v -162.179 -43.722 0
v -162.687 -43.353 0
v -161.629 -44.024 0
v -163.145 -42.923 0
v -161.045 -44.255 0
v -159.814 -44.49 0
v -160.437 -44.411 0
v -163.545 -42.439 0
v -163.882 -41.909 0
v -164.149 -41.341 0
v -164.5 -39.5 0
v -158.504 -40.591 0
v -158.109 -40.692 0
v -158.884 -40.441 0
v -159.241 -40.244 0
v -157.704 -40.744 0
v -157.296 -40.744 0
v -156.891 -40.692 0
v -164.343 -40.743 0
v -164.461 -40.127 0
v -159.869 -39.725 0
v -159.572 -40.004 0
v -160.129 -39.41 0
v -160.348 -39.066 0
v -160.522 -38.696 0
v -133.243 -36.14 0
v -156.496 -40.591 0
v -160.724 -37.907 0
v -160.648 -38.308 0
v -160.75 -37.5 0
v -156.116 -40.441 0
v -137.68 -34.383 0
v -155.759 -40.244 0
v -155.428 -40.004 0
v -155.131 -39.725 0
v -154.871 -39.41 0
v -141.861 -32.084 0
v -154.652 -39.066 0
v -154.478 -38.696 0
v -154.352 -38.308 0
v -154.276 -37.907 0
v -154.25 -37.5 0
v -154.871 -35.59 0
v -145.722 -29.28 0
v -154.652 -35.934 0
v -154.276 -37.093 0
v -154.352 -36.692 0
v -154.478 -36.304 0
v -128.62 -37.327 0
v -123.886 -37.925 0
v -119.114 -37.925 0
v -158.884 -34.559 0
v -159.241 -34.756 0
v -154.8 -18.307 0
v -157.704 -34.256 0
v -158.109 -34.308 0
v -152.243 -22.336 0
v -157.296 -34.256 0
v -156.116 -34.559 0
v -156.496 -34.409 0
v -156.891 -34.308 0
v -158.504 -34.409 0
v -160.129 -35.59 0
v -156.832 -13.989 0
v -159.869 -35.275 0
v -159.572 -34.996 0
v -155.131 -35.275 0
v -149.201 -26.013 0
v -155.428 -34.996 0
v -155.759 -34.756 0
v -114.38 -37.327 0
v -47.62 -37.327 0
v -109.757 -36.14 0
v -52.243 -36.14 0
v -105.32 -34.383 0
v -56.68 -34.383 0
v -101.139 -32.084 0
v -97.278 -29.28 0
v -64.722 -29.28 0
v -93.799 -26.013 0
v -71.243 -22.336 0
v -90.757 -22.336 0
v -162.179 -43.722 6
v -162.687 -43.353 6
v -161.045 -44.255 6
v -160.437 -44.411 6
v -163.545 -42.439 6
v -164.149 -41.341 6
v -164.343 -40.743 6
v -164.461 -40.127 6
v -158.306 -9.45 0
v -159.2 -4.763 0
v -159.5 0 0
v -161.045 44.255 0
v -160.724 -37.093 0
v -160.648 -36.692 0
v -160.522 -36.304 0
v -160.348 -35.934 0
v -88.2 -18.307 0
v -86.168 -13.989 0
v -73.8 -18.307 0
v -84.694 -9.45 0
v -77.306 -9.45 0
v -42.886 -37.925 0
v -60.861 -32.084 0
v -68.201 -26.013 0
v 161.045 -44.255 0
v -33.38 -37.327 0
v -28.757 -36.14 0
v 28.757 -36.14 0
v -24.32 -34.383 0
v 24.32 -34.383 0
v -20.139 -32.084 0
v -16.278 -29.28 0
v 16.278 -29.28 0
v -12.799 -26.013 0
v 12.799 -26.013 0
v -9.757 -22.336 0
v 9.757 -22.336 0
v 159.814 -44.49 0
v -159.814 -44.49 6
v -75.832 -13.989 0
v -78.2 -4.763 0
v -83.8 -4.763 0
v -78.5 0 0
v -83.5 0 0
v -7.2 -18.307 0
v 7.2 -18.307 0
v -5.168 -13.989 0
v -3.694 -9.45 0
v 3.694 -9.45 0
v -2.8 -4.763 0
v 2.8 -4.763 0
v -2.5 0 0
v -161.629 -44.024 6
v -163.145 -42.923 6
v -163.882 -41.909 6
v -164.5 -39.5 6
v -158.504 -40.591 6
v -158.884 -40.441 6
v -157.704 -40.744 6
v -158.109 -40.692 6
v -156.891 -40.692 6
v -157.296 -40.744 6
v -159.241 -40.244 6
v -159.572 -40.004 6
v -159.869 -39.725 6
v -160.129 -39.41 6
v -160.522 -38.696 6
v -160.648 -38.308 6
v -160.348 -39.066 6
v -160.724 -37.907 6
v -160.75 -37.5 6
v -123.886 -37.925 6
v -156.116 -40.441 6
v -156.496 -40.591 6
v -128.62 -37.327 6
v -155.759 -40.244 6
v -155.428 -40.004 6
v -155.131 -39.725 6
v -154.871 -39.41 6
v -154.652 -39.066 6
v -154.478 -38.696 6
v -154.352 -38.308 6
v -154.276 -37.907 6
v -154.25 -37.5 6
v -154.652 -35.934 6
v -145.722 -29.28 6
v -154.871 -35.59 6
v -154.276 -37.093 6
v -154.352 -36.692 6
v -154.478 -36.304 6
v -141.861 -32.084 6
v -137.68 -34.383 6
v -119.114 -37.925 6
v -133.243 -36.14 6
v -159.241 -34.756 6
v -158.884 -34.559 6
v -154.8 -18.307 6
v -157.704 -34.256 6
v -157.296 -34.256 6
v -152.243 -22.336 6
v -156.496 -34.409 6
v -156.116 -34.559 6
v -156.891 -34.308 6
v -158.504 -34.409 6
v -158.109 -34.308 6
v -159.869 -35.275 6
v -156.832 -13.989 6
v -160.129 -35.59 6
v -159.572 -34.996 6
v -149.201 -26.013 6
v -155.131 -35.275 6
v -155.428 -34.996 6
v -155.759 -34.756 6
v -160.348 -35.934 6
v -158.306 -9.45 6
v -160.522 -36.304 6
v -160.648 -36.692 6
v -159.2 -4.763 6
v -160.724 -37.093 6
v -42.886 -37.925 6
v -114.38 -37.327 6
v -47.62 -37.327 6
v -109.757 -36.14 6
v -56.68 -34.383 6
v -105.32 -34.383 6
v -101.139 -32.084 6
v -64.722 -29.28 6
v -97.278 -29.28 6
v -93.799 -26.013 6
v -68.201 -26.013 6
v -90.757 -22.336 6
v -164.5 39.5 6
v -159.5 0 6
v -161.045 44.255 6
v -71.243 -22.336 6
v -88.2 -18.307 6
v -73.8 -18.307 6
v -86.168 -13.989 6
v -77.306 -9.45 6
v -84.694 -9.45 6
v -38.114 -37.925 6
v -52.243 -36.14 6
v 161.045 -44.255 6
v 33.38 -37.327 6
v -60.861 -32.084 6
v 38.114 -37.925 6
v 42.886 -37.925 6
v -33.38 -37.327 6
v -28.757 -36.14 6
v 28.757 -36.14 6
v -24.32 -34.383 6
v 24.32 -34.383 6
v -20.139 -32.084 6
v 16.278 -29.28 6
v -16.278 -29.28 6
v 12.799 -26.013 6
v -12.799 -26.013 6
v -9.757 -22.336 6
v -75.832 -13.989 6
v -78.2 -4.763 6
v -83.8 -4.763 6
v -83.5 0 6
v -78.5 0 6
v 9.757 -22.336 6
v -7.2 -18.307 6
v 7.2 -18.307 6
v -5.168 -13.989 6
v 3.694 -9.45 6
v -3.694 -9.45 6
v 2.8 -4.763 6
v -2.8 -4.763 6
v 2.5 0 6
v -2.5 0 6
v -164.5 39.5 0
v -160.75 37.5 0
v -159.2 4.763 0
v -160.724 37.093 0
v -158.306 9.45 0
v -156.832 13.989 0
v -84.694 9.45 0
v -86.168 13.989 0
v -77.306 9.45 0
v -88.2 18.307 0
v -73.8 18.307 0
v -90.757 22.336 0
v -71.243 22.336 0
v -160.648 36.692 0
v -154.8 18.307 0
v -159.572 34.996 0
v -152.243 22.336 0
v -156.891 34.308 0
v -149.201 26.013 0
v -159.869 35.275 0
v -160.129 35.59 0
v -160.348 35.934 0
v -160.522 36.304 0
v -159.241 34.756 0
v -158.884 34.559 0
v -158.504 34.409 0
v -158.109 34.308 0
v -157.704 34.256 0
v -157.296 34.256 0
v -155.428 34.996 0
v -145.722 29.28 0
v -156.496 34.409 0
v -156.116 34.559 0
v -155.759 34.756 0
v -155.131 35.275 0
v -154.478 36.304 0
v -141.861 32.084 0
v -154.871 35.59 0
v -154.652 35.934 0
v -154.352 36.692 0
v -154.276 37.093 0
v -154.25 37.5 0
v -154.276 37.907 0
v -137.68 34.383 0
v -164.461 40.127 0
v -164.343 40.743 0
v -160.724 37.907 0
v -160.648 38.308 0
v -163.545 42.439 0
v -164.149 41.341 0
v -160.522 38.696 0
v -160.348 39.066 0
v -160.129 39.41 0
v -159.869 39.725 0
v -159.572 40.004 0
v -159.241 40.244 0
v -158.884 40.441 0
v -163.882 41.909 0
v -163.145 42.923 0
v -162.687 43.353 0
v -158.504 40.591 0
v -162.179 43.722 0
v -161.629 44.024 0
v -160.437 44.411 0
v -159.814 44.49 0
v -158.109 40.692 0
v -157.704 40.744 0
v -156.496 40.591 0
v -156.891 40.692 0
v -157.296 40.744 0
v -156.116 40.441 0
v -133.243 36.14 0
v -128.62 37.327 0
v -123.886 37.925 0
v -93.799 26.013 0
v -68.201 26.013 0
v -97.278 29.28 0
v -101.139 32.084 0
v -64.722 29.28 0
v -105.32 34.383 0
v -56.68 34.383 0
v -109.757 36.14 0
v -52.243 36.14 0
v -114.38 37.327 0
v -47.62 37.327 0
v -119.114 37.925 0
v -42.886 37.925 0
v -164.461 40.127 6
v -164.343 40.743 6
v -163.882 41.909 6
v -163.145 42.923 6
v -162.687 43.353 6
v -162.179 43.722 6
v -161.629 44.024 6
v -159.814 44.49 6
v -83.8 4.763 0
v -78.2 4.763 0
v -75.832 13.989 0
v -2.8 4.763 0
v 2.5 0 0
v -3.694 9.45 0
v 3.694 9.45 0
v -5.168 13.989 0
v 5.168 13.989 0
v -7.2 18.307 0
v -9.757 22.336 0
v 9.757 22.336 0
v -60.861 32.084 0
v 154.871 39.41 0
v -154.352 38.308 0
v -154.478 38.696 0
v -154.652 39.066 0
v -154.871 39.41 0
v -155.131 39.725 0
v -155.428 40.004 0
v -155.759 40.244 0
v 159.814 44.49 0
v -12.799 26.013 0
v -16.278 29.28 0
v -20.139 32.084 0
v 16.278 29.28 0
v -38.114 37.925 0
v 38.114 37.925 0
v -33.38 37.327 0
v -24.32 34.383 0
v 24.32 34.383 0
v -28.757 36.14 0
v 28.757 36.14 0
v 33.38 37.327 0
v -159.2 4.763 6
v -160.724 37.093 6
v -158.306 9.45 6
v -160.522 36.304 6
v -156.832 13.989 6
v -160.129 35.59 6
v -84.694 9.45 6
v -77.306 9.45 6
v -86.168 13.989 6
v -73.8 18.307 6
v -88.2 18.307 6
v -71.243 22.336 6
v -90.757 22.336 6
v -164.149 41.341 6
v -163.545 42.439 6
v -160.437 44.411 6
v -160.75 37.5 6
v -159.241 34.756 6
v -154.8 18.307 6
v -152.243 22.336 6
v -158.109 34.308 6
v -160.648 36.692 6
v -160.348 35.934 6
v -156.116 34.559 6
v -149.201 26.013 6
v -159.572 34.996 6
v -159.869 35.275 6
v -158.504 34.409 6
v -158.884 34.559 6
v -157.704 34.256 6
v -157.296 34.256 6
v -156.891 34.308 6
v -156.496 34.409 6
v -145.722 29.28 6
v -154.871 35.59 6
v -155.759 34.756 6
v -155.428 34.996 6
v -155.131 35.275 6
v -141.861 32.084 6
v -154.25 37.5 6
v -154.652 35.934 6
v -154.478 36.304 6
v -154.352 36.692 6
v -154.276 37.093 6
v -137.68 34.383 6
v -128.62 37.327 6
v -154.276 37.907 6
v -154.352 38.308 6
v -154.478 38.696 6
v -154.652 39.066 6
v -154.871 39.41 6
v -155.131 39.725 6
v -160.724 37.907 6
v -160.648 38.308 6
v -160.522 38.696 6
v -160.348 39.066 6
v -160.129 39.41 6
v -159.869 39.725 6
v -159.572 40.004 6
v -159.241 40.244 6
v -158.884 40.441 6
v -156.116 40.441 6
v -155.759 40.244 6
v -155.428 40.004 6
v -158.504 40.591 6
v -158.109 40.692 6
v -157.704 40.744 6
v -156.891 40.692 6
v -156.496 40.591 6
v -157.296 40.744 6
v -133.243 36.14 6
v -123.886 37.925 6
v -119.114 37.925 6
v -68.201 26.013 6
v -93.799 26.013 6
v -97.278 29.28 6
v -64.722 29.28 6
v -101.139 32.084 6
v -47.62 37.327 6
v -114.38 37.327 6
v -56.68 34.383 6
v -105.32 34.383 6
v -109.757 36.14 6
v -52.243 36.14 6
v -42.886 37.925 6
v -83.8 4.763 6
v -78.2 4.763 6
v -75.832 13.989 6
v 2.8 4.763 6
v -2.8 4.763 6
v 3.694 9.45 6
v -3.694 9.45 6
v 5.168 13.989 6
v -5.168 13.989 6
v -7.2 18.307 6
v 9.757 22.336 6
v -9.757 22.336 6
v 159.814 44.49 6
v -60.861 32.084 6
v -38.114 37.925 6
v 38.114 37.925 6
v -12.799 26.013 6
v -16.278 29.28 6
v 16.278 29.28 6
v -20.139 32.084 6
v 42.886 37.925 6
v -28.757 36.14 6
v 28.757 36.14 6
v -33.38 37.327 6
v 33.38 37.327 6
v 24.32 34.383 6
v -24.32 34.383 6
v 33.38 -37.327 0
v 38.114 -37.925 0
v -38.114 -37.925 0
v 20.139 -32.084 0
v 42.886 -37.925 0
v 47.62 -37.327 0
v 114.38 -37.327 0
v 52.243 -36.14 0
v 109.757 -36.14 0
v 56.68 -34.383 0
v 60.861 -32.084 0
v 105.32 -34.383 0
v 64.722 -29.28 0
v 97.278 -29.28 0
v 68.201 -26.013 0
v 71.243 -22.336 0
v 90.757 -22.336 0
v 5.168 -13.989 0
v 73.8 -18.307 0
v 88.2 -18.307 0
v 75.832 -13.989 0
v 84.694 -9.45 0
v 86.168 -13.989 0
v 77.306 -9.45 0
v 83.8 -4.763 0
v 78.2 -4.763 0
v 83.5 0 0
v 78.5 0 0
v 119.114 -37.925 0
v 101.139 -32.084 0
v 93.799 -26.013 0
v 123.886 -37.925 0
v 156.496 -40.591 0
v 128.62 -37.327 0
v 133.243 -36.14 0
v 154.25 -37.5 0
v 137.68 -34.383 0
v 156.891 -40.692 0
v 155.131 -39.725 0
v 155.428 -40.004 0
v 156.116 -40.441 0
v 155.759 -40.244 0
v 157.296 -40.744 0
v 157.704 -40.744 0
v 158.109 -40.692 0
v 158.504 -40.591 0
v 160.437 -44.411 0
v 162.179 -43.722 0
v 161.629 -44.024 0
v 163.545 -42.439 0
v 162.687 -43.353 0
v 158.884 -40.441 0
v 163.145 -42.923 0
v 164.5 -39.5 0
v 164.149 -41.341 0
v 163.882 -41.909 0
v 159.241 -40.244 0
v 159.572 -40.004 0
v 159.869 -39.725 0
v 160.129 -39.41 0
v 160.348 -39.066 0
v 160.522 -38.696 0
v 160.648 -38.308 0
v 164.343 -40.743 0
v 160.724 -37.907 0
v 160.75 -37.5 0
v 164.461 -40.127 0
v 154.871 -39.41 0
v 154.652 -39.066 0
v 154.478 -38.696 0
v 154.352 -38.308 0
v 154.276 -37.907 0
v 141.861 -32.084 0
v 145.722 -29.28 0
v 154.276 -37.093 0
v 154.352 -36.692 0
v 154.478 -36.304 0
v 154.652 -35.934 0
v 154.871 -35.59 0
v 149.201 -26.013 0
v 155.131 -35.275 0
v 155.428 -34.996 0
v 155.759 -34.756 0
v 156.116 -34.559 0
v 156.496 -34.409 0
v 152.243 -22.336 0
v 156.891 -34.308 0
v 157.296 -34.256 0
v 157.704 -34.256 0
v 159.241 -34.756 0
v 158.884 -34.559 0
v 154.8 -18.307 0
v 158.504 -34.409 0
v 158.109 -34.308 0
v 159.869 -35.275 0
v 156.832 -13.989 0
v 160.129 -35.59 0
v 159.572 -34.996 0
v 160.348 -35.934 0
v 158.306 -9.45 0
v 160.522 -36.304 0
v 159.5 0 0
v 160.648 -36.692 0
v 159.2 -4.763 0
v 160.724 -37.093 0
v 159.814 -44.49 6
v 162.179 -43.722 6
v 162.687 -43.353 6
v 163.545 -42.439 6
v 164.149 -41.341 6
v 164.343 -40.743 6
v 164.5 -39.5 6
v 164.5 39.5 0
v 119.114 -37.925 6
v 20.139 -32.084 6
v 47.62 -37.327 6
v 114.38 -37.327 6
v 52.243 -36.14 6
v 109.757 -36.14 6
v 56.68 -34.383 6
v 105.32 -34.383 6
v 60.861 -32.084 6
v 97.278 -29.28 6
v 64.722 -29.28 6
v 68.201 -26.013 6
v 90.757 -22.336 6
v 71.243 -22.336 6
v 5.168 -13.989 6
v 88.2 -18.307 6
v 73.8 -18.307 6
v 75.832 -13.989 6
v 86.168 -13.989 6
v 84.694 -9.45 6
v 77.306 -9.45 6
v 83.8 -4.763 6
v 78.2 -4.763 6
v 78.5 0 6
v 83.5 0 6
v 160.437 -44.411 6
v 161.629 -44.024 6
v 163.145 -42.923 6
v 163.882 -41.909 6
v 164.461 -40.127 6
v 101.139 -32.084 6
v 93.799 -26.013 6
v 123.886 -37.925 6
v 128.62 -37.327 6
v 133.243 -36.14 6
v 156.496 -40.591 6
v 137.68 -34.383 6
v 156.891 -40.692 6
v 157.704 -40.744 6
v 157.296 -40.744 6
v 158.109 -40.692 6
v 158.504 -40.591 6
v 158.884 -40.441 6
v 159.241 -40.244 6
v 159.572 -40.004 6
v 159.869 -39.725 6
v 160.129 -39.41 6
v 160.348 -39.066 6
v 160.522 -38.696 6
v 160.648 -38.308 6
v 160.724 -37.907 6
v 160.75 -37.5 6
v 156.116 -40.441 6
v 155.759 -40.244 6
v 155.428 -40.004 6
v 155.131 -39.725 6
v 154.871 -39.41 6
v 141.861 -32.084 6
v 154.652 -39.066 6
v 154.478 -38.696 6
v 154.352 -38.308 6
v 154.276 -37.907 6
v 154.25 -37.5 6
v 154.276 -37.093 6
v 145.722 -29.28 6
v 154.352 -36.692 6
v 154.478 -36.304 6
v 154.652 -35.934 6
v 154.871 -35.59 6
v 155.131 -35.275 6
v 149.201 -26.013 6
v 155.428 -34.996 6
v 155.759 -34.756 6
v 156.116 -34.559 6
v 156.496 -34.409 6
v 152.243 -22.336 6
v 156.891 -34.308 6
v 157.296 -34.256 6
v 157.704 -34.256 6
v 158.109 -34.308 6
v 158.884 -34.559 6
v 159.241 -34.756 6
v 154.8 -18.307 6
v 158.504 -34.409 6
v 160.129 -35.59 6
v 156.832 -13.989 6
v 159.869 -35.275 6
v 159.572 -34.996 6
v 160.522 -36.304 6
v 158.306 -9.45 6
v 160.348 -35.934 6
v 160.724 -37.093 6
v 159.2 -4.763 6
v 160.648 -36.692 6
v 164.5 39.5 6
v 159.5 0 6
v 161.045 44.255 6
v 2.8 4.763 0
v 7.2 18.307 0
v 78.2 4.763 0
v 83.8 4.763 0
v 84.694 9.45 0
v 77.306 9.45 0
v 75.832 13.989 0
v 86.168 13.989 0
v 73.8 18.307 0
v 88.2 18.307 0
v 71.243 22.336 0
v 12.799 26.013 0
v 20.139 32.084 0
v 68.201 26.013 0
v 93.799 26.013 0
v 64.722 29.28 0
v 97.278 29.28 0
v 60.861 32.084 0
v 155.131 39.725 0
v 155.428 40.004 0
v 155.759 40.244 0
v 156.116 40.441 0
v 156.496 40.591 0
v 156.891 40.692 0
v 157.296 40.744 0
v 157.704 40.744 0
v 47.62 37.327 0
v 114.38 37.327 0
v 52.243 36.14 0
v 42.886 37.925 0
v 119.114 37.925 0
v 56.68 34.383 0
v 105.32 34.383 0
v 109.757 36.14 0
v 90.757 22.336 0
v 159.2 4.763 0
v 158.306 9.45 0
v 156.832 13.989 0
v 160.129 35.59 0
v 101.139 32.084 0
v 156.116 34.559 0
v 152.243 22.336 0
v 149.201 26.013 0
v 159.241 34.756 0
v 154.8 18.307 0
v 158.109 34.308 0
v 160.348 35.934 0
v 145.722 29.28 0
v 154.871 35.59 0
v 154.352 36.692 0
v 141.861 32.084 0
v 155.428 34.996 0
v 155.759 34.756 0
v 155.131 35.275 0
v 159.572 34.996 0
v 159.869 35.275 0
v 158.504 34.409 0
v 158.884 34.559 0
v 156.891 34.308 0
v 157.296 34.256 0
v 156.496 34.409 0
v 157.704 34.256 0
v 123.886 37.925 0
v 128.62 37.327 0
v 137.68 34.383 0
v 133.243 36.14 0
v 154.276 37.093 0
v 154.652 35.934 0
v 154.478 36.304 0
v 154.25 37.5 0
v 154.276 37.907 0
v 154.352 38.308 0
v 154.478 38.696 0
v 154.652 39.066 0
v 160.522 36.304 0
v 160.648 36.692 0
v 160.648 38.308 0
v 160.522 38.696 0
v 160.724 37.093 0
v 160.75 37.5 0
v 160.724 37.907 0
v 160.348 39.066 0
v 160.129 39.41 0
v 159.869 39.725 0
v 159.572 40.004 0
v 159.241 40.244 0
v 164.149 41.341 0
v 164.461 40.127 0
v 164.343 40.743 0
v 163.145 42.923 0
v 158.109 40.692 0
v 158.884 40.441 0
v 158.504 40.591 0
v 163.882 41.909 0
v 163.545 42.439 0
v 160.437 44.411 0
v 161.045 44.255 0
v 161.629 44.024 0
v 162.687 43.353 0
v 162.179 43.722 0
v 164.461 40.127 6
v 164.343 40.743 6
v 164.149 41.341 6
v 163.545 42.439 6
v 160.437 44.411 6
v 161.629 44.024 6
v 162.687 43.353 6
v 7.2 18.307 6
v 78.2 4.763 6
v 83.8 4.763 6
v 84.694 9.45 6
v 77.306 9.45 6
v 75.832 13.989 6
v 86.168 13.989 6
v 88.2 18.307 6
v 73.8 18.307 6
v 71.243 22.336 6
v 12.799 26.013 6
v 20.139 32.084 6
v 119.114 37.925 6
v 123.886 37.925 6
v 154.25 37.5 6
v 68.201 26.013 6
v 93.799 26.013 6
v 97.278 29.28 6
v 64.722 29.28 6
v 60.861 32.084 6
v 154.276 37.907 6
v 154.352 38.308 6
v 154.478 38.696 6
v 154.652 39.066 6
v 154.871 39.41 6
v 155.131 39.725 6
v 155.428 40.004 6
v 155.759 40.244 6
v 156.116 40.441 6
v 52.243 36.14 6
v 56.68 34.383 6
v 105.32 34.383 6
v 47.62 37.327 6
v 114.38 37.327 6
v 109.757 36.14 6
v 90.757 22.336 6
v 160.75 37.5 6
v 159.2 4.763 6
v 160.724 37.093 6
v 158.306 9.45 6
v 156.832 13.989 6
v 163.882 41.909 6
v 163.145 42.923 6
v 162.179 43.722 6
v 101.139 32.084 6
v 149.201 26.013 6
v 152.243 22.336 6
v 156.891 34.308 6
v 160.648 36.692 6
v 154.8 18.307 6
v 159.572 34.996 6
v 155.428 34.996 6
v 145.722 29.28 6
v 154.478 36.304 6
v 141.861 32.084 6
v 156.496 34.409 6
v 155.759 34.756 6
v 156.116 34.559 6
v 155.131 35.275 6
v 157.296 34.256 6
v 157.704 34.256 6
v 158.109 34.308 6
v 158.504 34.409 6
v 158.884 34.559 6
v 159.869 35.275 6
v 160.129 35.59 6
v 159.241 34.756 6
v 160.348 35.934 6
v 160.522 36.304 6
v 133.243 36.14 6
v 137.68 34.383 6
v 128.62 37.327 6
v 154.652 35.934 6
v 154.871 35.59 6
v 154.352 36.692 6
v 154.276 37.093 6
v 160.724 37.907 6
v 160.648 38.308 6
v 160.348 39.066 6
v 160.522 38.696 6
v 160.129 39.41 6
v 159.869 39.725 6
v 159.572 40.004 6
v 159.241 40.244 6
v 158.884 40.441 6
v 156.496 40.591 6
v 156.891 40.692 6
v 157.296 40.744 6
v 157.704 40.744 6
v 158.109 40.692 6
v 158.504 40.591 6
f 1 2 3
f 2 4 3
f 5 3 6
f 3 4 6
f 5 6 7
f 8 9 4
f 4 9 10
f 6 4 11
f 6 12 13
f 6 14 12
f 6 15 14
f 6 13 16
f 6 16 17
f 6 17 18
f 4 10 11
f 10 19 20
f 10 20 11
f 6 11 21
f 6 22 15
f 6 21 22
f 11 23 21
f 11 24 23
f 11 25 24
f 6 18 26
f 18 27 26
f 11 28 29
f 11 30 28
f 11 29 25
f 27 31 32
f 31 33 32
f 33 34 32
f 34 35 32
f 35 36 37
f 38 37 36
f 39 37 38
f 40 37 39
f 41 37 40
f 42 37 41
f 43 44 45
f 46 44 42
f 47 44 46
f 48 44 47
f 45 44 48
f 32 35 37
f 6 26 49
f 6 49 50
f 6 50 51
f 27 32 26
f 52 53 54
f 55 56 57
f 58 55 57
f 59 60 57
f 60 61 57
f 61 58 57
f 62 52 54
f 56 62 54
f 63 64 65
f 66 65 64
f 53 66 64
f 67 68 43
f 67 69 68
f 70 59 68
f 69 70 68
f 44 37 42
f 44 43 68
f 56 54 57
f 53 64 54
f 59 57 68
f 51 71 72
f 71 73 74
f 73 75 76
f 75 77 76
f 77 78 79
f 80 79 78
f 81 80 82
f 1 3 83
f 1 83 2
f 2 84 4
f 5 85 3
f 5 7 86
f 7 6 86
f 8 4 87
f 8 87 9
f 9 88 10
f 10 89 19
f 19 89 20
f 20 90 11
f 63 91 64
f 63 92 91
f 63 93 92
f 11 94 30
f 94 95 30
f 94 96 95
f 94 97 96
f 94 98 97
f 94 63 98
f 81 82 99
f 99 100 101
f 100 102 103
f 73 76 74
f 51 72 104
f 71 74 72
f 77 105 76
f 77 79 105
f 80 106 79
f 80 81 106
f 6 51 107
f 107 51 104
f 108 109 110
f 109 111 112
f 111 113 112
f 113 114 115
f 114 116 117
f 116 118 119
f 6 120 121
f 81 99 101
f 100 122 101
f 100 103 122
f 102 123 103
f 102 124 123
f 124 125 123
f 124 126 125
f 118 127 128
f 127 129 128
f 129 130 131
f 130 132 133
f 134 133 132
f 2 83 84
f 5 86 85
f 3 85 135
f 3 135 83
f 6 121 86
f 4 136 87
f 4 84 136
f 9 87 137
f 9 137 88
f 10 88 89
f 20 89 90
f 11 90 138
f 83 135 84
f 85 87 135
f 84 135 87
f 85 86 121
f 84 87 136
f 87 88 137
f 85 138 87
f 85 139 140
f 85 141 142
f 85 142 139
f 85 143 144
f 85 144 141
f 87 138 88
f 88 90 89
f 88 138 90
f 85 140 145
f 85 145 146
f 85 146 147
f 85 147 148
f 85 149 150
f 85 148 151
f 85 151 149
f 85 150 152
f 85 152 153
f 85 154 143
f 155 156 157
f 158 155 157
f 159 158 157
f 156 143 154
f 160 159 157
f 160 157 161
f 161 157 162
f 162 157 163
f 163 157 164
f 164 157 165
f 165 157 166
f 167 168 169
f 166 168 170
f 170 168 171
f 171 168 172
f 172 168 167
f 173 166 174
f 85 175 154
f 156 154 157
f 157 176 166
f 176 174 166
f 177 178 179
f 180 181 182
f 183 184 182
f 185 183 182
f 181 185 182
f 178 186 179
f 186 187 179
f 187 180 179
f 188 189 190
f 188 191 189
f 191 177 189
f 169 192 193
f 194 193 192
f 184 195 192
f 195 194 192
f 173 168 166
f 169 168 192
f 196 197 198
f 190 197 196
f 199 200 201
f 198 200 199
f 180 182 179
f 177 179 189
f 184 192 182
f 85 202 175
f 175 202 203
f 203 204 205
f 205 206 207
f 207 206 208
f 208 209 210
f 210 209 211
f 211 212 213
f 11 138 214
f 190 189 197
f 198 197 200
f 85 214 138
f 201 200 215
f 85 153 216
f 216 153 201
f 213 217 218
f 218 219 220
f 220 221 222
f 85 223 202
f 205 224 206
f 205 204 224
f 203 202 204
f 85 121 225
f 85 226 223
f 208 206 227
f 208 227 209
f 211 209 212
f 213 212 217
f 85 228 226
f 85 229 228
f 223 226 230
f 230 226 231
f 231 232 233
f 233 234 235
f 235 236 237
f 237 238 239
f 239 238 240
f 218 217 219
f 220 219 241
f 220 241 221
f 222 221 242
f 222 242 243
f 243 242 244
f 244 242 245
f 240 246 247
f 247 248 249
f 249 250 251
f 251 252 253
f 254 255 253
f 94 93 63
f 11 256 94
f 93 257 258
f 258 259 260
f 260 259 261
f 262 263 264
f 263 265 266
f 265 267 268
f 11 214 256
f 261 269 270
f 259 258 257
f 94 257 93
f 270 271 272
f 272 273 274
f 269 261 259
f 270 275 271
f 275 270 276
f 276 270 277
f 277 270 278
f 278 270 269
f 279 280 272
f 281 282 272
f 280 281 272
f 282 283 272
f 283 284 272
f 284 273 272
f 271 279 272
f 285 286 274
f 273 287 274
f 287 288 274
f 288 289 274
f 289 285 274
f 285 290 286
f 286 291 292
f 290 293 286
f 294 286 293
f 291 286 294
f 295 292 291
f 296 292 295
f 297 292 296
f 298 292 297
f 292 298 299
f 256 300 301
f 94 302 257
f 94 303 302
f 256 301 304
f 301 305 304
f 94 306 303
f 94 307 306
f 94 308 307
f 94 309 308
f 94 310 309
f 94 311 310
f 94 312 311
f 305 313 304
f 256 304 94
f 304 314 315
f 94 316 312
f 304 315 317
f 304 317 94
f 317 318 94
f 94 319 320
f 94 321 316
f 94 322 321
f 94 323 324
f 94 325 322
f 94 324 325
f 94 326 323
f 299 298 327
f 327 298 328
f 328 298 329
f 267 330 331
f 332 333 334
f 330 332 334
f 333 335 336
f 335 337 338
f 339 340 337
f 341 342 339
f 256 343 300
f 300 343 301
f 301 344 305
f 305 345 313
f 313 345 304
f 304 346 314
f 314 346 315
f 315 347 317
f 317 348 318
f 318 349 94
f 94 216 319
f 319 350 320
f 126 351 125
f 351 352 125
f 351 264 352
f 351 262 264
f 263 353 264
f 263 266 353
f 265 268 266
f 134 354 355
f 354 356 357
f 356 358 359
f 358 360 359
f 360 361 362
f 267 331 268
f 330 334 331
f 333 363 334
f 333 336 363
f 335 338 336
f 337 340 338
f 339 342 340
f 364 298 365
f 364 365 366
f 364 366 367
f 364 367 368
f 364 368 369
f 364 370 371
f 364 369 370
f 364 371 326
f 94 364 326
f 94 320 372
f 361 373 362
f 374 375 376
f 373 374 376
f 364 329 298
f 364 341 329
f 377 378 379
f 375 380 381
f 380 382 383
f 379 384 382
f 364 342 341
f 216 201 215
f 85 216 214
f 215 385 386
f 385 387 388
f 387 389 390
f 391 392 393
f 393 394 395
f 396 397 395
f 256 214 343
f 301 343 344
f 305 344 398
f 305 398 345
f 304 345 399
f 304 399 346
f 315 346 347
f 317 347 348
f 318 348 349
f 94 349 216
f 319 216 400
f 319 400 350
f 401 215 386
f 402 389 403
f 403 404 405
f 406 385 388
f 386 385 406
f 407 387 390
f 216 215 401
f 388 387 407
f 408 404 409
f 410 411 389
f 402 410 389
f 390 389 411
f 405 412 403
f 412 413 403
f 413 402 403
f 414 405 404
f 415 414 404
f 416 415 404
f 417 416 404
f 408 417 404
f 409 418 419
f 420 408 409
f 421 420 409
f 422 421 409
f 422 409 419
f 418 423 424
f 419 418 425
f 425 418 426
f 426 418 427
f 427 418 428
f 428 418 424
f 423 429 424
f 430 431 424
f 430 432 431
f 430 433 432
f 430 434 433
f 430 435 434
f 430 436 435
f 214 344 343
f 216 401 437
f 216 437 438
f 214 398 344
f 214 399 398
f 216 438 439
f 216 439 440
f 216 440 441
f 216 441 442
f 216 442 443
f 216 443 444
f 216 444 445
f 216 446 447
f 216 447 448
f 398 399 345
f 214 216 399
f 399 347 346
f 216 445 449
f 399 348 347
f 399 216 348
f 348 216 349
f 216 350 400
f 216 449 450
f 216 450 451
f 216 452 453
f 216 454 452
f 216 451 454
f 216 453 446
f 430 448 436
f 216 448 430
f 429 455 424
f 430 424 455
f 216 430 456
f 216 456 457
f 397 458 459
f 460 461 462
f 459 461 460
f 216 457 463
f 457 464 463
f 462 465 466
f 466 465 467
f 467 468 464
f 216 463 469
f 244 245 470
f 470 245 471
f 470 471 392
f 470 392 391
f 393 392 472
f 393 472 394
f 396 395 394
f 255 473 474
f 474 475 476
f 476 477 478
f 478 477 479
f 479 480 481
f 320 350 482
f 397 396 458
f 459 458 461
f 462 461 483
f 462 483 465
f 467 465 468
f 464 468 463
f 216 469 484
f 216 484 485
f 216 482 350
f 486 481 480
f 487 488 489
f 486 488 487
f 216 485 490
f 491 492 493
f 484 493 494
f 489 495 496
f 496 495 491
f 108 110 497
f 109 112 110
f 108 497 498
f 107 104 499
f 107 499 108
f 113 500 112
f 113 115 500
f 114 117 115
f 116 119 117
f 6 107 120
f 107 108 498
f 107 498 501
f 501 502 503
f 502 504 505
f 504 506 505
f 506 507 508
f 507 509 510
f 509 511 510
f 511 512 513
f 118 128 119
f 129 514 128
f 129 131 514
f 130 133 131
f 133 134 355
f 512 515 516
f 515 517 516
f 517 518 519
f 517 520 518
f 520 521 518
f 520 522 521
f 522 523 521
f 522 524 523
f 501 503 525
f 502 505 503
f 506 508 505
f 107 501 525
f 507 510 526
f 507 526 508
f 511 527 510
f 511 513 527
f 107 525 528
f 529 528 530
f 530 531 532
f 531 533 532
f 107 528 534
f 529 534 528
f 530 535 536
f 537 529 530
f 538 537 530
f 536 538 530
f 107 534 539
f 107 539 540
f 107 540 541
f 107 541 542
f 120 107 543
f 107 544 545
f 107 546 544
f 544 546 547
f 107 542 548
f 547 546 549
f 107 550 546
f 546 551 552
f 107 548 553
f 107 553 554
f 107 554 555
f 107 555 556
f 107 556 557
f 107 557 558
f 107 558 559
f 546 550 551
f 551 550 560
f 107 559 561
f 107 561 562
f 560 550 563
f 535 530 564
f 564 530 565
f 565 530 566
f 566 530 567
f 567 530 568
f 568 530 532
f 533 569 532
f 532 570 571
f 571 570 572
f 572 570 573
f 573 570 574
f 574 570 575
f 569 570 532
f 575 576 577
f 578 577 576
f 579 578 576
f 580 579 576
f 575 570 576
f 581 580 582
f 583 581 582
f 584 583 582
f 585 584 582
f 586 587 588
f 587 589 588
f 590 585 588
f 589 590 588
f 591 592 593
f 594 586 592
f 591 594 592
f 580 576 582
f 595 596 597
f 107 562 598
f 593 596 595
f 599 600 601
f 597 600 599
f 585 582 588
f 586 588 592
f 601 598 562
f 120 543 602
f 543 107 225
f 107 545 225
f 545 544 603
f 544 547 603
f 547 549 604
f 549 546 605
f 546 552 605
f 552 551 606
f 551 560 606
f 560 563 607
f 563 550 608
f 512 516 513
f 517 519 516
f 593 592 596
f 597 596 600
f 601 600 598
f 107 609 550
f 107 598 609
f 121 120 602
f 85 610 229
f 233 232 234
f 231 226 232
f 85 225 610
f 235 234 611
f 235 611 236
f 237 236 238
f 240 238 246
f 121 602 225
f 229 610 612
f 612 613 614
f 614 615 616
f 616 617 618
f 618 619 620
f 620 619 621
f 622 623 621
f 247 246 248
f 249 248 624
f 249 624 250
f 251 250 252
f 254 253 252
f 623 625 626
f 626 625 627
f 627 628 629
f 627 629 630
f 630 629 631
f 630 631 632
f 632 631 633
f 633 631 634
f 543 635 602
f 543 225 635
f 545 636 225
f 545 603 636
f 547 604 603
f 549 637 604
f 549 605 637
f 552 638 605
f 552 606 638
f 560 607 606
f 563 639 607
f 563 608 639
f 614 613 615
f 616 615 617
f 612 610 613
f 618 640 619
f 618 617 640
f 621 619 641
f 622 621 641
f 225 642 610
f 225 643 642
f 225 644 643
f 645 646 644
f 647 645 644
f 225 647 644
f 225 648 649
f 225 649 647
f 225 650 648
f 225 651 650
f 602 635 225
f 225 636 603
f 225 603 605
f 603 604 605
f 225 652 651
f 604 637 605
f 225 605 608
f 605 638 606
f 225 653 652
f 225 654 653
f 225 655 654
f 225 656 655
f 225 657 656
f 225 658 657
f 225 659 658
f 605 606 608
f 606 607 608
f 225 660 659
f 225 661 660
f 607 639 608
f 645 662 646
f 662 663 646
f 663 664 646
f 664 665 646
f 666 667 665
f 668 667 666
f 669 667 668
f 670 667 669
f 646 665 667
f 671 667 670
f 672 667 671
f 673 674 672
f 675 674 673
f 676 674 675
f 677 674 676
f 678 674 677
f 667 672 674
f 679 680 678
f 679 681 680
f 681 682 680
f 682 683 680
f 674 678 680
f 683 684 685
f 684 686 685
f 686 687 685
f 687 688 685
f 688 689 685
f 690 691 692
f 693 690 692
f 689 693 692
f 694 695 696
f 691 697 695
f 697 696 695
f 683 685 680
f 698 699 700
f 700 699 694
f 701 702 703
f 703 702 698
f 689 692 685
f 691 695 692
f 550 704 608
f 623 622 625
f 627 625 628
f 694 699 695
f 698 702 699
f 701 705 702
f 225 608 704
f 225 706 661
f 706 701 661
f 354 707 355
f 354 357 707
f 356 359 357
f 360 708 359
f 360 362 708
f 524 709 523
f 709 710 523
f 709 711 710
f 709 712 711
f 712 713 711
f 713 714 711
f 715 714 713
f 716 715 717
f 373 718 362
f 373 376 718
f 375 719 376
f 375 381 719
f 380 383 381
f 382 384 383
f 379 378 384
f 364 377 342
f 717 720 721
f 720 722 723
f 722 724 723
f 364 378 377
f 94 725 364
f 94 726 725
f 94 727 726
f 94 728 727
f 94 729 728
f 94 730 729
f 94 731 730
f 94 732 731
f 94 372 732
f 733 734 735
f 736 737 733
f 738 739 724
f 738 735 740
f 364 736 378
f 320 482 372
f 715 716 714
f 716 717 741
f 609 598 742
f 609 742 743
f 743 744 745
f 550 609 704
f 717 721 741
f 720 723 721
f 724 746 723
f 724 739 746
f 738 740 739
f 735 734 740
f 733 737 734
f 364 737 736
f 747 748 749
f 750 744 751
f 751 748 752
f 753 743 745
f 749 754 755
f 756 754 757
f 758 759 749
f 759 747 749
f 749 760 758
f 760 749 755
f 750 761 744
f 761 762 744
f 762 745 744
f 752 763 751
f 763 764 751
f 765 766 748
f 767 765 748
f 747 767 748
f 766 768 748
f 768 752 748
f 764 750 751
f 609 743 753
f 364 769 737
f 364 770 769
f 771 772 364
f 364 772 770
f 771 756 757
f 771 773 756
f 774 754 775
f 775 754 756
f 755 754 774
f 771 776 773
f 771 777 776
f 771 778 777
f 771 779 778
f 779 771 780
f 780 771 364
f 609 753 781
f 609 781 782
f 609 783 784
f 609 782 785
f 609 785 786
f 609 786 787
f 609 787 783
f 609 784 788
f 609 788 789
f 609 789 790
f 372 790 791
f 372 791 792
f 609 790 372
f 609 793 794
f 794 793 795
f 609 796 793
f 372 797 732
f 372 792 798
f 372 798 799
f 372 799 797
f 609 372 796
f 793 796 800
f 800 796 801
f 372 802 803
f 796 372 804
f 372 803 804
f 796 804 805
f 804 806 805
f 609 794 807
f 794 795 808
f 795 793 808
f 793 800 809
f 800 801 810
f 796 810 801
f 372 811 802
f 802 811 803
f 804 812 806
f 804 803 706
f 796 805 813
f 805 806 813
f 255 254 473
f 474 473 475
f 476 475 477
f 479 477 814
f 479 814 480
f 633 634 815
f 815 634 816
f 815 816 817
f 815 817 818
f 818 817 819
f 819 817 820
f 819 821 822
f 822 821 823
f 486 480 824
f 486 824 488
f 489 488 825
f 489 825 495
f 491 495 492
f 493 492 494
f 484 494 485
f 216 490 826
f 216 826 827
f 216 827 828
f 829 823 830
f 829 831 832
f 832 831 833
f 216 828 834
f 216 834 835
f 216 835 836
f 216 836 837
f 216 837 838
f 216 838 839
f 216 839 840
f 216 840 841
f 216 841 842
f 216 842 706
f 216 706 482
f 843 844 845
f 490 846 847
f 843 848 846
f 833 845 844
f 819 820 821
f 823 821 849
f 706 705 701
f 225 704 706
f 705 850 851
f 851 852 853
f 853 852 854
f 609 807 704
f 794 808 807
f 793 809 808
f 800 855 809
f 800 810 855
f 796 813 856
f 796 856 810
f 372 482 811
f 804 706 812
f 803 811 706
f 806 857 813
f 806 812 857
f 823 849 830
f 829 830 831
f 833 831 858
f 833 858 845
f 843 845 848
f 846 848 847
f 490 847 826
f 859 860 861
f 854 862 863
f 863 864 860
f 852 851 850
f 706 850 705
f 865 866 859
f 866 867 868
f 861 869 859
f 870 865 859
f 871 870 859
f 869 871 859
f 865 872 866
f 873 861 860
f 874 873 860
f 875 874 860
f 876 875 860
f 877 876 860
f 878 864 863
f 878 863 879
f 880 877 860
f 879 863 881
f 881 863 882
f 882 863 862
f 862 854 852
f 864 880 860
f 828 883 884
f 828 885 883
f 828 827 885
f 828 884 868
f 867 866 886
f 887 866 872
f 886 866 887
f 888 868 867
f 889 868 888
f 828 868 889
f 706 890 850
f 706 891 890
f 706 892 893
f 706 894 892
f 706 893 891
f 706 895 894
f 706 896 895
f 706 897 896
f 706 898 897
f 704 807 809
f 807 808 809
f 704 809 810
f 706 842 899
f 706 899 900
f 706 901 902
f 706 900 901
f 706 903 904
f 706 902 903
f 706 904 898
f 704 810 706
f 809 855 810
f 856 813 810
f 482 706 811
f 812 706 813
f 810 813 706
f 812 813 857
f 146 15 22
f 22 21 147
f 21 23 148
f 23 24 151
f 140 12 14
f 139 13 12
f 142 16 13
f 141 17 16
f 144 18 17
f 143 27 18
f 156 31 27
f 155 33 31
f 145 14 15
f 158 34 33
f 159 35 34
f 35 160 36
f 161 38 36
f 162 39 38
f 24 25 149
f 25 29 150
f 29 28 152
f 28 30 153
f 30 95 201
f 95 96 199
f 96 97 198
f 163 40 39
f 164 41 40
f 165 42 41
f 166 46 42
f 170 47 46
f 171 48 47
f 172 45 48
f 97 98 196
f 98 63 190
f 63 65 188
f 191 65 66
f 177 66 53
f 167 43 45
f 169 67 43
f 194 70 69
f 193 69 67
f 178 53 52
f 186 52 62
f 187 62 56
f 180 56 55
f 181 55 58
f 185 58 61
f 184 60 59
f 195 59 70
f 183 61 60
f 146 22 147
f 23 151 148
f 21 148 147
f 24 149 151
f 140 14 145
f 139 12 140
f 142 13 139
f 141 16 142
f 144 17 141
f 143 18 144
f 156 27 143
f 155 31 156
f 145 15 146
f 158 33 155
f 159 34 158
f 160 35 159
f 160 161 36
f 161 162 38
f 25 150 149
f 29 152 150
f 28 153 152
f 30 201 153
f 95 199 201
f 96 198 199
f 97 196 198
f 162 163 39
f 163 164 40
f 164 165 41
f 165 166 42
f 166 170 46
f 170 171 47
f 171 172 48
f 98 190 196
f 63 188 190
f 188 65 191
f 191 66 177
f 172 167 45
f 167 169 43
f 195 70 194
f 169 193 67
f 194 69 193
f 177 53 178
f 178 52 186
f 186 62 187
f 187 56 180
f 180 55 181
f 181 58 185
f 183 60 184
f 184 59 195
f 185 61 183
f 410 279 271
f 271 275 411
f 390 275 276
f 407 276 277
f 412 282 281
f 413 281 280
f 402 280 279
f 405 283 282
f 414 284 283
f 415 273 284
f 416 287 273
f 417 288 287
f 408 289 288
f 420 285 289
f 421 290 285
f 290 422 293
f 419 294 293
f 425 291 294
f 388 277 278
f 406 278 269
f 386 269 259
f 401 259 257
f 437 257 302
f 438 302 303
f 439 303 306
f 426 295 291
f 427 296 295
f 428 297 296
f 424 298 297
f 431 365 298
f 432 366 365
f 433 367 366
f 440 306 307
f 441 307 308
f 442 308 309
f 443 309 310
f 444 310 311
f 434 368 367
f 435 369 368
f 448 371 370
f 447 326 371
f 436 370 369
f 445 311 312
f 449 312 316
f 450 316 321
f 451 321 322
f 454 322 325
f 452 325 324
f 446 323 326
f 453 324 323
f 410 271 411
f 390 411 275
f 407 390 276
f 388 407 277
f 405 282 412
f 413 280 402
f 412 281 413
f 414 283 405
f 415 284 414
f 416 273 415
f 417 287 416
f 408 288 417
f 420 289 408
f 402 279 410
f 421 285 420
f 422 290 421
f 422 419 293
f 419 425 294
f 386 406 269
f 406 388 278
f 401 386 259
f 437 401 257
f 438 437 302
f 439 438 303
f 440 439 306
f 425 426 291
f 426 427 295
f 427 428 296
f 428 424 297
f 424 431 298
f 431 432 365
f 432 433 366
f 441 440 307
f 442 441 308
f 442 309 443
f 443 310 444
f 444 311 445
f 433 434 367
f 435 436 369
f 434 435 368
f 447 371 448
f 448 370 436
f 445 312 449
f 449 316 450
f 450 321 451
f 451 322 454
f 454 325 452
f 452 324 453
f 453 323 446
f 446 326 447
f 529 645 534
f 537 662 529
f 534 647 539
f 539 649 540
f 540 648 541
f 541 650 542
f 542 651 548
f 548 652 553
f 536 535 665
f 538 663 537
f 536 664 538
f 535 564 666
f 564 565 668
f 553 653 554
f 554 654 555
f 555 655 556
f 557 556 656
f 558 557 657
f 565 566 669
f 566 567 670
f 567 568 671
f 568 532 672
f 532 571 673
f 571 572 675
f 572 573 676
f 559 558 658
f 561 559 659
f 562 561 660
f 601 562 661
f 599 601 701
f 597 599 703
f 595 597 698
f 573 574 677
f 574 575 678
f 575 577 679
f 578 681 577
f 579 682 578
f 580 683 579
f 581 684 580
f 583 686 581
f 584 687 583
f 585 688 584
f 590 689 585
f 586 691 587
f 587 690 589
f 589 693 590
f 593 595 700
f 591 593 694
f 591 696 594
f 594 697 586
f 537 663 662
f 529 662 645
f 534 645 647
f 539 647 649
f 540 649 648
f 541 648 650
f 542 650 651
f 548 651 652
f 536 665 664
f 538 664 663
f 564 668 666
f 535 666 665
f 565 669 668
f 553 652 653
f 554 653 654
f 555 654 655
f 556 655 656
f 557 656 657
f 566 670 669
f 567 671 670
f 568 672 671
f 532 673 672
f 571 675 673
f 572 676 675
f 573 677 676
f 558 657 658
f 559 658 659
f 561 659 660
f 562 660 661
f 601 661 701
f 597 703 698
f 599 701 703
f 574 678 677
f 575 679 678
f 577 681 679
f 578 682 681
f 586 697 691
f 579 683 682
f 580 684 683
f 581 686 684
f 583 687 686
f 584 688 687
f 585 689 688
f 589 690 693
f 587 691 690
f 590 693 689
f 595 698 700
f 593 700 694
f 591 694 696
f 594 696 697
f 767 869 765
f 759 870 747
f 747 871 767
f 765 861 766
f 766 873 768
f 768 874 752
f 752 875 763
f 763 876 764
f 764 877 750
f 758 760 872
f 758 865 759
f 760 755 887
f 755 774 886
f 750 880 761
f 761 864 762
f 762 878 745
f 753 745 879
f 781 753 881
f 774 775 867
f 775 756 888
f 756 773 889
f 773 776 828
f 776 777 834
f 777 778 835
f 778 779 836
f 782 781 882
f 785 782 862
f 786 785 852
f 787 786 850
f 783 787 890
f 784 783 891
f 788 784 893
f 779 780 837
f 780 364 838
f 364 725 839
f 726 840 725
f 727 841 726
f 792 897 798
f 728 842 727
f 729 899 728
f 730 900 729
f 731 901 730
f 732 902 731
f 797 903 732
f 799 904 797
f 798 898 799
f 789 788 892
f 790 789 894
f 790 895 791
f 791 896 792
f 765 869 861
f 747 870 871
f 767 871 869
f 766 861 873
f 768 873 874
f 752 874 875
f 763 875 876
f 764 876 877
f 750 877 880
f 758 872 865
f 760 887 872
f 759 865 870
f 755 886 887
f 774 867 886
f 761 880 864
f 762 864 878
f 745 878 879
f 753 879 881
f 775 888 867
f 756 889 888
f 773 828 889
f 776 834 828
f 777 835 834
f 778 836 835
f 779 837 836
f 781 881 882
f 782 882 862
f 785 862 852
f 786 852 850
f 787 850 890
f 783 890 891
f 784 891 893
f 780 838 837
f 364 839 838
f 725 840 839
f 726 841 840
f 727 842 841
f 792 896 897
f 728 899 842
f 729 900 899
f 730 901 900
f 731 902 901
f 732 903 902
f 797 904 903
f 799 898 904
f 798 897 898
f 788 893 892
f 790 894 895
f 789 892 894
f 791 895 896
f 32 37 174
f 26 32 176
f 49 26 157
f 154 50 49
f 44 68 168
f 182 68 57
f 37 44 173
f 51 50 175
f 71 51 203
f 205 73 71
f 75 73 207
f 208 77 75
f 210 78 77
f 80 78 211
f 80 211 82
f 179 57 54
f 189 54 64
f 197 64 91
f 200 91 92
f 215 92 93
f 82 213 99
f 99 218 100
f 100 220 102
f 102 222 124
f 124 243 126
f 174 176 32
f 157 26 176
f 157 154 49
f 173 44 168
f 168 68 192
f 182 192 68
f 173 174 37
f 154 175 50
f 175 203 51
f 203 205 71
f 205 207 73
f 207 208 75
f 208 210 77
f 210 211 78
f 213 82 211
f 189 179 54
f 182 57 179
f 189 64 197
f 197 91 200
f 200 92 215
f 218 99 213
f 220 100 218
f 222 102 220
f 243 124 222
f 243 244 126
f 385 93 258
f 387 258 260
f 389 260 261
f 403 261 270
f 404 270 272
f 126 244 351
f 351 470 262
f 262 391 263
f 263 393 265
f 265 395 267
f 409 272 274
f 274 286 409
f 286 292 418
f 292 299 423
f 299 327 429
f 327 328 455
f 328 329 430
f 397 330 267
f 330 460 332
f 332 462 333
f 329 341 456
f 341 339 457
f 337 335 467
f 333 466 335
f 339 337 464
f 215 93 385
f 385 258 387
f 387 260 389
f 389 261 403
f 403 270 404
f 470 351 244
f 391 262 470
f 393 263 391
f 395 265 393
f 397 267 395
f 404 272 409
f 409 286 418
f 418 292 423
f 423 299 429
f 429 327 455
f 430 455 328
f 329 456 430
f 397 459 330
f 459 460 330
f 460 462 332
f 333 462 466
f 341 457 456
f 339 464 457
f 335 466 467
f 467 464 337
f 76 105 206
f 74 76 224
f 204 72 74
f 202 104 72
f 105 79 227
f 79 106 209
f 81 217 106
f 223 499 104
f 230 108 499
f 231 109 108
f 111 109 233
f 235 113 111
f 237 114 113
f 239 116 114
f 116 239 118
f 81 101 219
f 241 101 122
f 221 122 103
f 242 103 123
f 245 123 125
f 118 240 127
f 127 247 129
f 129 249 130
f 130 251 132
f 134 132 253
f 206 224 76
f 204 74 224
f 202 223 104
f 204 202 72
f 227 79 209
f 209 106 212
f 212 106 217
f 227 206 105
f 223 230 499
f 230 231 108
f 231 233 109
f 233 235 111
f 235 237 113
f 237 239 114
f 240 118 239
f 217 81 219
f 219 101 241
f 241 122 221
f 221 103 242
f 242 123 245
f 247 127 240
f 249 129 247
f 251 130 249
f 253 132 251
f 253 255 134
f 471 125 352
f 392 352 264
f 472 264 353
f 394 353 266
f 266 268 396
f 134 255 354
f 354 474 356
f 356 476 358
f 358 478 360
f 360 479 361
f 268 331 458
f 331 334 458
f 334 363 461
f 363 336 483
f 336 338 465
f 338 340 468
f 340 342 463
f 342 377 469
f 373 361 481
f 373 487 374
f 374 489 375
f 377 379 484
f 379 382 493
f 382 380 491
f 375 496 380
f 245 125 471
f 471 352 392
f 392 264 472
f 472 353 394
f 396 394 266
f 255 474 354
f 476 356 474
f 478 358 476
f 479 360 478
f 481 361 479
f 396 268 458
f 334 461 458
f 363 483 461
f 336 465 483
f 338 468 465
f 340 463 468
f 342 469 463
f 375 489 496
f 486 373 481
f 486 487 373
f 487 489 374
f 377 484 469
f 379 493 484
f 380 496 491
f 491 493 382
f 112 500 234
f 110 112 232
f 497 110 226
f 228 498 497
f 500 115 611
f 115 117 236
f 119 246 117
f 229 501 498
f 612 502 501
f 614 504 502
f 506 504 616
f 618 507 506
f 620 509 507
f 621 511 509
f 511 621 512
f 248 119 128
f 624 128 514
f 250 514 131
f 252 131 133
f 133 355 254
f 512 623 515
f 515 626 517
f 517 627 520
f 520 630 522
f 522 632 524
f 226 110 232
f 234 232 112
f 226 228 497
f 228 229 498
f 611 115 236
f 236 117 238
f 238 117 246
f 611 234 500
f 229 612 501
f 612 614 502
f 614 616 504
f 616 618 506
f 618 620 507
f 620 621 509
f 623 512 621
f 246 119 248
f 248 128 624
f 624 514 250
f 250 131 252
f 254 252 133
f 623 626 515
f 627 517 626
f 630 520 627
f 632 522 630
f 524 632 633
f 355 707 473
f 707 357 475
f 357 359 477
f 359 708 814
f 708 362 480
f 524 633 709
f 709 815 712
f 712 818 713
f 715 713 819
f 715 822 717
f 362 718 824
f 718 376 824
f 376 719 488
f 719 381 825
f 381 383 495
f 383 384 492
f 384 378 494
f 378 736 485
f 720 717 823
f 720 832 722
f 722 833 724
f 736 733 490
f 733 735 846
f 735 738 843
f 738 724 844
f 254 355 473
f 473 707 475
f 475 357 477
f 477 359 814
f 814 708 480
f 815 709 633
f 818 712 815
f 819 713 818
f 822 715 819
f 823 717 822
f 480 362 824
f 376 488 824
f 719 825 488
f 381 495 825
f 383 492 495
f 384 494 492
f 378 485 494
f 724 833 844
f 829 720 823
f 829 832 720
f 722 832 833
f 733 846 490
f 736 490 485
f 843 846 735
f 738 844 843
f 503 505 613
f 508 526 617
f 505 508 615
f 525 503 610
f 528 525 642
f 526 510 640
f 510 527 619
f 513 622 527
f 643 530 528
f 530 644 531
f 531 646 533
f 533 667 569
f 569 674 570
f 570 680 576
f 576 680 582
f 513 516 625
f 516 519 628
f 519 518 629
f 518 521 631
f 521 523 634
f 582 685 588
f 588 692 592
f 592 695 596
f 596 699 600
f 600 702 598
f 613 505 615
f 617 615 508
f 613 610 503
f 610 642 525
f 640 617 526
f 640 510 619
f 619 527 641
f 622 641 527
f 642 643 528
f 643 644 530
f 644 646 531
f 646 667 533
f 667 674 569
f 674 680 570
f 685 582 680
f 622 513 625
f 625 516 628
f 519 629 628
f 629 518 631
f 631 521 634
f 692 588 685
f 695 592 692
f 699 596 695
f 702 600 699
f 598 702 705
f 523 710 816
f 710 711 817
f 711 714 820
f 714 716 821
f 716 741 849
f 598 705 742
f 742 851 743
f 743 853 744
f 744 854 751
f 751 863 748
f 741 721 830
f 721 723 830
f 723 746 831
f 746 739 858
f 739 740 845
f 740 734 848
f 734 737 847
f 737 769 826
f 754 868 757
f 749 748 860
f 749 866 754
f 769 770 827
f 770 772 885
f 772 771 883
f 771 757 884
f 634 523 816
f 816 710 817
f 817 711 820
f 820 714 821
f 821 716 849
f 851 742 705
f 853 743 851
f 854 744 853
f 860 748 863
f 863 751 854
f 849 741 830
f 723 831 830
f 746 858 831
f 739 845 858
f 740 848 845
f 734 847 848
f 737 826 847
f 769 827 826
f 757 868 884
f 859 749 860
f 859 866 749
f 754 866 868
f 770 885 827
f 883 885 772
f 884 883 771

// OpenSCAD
$fn = 50;

difference() {
	union() {
		hull() {
			translate(v = [-159.5, 39.5, 0]) {
				cylinder(h = 6, r = 5);
			}
			translate(v = [159.5, 39.5, 0]) {
				cylinder(h = 6, r = 5);
			}
			translate(v = [-159.5, -39.5, 0]) {
				cylinder(h = 6, r = 5);
			}
			translate(v = [159.5, -39.5, 0]) {
				cylinder(h = 6, r = 5);
			}
		}
	}
	union() {
		translate(v = [-157.5, -37.5, -100.0]) {
			cylinder(h = 200, r = 3.25);
		}
		translate(v = [-157.5, 37.5, -100.0]) {
			cylinder(h = 200, r = 3.25);
		}
		translate(v = [157.5, -37.5, -100.0]) {
			cylinder(h = 200, r = 3.25);
		}
		translate(v = [157.5, 37.5, -100.0]) {
			cylinder(h = 200, r = 3.25);
		}
		translate(v = [-157.5, -37.5, -100.0]) {
			cylinder(h = 200, r = 1.8);
		}
		translate(v = [-157.5, 37.5, -100.0]) {
			cylinder(h = 200, r = 1.8);
		}
		translate(v = [157.5, -37.5, -100.0]) {
			cylinder(h = 200, r = 1.8);
		}
		translate(v = [157.5, 37.5, -100.0]) {
			cylinder(h = 200, r = 1.8);
		}
		translate(v = [-121.5, 0, 0.0]) {
			cylinder(h = 6, r = 38.0);
		}
		translate(v = [-40.5, 0, 0.0]) {
			cylinder(h = 6, r = 38.0);
		}
		translate(v = [40.5, 0, 0.0]) {
			cylinder(h = 6, r = 38.0);
		}
		translate(v = [121.5, 0, 0.0]) {
			cylinder(h = 6, r = 38.0);
		}
	}
}
